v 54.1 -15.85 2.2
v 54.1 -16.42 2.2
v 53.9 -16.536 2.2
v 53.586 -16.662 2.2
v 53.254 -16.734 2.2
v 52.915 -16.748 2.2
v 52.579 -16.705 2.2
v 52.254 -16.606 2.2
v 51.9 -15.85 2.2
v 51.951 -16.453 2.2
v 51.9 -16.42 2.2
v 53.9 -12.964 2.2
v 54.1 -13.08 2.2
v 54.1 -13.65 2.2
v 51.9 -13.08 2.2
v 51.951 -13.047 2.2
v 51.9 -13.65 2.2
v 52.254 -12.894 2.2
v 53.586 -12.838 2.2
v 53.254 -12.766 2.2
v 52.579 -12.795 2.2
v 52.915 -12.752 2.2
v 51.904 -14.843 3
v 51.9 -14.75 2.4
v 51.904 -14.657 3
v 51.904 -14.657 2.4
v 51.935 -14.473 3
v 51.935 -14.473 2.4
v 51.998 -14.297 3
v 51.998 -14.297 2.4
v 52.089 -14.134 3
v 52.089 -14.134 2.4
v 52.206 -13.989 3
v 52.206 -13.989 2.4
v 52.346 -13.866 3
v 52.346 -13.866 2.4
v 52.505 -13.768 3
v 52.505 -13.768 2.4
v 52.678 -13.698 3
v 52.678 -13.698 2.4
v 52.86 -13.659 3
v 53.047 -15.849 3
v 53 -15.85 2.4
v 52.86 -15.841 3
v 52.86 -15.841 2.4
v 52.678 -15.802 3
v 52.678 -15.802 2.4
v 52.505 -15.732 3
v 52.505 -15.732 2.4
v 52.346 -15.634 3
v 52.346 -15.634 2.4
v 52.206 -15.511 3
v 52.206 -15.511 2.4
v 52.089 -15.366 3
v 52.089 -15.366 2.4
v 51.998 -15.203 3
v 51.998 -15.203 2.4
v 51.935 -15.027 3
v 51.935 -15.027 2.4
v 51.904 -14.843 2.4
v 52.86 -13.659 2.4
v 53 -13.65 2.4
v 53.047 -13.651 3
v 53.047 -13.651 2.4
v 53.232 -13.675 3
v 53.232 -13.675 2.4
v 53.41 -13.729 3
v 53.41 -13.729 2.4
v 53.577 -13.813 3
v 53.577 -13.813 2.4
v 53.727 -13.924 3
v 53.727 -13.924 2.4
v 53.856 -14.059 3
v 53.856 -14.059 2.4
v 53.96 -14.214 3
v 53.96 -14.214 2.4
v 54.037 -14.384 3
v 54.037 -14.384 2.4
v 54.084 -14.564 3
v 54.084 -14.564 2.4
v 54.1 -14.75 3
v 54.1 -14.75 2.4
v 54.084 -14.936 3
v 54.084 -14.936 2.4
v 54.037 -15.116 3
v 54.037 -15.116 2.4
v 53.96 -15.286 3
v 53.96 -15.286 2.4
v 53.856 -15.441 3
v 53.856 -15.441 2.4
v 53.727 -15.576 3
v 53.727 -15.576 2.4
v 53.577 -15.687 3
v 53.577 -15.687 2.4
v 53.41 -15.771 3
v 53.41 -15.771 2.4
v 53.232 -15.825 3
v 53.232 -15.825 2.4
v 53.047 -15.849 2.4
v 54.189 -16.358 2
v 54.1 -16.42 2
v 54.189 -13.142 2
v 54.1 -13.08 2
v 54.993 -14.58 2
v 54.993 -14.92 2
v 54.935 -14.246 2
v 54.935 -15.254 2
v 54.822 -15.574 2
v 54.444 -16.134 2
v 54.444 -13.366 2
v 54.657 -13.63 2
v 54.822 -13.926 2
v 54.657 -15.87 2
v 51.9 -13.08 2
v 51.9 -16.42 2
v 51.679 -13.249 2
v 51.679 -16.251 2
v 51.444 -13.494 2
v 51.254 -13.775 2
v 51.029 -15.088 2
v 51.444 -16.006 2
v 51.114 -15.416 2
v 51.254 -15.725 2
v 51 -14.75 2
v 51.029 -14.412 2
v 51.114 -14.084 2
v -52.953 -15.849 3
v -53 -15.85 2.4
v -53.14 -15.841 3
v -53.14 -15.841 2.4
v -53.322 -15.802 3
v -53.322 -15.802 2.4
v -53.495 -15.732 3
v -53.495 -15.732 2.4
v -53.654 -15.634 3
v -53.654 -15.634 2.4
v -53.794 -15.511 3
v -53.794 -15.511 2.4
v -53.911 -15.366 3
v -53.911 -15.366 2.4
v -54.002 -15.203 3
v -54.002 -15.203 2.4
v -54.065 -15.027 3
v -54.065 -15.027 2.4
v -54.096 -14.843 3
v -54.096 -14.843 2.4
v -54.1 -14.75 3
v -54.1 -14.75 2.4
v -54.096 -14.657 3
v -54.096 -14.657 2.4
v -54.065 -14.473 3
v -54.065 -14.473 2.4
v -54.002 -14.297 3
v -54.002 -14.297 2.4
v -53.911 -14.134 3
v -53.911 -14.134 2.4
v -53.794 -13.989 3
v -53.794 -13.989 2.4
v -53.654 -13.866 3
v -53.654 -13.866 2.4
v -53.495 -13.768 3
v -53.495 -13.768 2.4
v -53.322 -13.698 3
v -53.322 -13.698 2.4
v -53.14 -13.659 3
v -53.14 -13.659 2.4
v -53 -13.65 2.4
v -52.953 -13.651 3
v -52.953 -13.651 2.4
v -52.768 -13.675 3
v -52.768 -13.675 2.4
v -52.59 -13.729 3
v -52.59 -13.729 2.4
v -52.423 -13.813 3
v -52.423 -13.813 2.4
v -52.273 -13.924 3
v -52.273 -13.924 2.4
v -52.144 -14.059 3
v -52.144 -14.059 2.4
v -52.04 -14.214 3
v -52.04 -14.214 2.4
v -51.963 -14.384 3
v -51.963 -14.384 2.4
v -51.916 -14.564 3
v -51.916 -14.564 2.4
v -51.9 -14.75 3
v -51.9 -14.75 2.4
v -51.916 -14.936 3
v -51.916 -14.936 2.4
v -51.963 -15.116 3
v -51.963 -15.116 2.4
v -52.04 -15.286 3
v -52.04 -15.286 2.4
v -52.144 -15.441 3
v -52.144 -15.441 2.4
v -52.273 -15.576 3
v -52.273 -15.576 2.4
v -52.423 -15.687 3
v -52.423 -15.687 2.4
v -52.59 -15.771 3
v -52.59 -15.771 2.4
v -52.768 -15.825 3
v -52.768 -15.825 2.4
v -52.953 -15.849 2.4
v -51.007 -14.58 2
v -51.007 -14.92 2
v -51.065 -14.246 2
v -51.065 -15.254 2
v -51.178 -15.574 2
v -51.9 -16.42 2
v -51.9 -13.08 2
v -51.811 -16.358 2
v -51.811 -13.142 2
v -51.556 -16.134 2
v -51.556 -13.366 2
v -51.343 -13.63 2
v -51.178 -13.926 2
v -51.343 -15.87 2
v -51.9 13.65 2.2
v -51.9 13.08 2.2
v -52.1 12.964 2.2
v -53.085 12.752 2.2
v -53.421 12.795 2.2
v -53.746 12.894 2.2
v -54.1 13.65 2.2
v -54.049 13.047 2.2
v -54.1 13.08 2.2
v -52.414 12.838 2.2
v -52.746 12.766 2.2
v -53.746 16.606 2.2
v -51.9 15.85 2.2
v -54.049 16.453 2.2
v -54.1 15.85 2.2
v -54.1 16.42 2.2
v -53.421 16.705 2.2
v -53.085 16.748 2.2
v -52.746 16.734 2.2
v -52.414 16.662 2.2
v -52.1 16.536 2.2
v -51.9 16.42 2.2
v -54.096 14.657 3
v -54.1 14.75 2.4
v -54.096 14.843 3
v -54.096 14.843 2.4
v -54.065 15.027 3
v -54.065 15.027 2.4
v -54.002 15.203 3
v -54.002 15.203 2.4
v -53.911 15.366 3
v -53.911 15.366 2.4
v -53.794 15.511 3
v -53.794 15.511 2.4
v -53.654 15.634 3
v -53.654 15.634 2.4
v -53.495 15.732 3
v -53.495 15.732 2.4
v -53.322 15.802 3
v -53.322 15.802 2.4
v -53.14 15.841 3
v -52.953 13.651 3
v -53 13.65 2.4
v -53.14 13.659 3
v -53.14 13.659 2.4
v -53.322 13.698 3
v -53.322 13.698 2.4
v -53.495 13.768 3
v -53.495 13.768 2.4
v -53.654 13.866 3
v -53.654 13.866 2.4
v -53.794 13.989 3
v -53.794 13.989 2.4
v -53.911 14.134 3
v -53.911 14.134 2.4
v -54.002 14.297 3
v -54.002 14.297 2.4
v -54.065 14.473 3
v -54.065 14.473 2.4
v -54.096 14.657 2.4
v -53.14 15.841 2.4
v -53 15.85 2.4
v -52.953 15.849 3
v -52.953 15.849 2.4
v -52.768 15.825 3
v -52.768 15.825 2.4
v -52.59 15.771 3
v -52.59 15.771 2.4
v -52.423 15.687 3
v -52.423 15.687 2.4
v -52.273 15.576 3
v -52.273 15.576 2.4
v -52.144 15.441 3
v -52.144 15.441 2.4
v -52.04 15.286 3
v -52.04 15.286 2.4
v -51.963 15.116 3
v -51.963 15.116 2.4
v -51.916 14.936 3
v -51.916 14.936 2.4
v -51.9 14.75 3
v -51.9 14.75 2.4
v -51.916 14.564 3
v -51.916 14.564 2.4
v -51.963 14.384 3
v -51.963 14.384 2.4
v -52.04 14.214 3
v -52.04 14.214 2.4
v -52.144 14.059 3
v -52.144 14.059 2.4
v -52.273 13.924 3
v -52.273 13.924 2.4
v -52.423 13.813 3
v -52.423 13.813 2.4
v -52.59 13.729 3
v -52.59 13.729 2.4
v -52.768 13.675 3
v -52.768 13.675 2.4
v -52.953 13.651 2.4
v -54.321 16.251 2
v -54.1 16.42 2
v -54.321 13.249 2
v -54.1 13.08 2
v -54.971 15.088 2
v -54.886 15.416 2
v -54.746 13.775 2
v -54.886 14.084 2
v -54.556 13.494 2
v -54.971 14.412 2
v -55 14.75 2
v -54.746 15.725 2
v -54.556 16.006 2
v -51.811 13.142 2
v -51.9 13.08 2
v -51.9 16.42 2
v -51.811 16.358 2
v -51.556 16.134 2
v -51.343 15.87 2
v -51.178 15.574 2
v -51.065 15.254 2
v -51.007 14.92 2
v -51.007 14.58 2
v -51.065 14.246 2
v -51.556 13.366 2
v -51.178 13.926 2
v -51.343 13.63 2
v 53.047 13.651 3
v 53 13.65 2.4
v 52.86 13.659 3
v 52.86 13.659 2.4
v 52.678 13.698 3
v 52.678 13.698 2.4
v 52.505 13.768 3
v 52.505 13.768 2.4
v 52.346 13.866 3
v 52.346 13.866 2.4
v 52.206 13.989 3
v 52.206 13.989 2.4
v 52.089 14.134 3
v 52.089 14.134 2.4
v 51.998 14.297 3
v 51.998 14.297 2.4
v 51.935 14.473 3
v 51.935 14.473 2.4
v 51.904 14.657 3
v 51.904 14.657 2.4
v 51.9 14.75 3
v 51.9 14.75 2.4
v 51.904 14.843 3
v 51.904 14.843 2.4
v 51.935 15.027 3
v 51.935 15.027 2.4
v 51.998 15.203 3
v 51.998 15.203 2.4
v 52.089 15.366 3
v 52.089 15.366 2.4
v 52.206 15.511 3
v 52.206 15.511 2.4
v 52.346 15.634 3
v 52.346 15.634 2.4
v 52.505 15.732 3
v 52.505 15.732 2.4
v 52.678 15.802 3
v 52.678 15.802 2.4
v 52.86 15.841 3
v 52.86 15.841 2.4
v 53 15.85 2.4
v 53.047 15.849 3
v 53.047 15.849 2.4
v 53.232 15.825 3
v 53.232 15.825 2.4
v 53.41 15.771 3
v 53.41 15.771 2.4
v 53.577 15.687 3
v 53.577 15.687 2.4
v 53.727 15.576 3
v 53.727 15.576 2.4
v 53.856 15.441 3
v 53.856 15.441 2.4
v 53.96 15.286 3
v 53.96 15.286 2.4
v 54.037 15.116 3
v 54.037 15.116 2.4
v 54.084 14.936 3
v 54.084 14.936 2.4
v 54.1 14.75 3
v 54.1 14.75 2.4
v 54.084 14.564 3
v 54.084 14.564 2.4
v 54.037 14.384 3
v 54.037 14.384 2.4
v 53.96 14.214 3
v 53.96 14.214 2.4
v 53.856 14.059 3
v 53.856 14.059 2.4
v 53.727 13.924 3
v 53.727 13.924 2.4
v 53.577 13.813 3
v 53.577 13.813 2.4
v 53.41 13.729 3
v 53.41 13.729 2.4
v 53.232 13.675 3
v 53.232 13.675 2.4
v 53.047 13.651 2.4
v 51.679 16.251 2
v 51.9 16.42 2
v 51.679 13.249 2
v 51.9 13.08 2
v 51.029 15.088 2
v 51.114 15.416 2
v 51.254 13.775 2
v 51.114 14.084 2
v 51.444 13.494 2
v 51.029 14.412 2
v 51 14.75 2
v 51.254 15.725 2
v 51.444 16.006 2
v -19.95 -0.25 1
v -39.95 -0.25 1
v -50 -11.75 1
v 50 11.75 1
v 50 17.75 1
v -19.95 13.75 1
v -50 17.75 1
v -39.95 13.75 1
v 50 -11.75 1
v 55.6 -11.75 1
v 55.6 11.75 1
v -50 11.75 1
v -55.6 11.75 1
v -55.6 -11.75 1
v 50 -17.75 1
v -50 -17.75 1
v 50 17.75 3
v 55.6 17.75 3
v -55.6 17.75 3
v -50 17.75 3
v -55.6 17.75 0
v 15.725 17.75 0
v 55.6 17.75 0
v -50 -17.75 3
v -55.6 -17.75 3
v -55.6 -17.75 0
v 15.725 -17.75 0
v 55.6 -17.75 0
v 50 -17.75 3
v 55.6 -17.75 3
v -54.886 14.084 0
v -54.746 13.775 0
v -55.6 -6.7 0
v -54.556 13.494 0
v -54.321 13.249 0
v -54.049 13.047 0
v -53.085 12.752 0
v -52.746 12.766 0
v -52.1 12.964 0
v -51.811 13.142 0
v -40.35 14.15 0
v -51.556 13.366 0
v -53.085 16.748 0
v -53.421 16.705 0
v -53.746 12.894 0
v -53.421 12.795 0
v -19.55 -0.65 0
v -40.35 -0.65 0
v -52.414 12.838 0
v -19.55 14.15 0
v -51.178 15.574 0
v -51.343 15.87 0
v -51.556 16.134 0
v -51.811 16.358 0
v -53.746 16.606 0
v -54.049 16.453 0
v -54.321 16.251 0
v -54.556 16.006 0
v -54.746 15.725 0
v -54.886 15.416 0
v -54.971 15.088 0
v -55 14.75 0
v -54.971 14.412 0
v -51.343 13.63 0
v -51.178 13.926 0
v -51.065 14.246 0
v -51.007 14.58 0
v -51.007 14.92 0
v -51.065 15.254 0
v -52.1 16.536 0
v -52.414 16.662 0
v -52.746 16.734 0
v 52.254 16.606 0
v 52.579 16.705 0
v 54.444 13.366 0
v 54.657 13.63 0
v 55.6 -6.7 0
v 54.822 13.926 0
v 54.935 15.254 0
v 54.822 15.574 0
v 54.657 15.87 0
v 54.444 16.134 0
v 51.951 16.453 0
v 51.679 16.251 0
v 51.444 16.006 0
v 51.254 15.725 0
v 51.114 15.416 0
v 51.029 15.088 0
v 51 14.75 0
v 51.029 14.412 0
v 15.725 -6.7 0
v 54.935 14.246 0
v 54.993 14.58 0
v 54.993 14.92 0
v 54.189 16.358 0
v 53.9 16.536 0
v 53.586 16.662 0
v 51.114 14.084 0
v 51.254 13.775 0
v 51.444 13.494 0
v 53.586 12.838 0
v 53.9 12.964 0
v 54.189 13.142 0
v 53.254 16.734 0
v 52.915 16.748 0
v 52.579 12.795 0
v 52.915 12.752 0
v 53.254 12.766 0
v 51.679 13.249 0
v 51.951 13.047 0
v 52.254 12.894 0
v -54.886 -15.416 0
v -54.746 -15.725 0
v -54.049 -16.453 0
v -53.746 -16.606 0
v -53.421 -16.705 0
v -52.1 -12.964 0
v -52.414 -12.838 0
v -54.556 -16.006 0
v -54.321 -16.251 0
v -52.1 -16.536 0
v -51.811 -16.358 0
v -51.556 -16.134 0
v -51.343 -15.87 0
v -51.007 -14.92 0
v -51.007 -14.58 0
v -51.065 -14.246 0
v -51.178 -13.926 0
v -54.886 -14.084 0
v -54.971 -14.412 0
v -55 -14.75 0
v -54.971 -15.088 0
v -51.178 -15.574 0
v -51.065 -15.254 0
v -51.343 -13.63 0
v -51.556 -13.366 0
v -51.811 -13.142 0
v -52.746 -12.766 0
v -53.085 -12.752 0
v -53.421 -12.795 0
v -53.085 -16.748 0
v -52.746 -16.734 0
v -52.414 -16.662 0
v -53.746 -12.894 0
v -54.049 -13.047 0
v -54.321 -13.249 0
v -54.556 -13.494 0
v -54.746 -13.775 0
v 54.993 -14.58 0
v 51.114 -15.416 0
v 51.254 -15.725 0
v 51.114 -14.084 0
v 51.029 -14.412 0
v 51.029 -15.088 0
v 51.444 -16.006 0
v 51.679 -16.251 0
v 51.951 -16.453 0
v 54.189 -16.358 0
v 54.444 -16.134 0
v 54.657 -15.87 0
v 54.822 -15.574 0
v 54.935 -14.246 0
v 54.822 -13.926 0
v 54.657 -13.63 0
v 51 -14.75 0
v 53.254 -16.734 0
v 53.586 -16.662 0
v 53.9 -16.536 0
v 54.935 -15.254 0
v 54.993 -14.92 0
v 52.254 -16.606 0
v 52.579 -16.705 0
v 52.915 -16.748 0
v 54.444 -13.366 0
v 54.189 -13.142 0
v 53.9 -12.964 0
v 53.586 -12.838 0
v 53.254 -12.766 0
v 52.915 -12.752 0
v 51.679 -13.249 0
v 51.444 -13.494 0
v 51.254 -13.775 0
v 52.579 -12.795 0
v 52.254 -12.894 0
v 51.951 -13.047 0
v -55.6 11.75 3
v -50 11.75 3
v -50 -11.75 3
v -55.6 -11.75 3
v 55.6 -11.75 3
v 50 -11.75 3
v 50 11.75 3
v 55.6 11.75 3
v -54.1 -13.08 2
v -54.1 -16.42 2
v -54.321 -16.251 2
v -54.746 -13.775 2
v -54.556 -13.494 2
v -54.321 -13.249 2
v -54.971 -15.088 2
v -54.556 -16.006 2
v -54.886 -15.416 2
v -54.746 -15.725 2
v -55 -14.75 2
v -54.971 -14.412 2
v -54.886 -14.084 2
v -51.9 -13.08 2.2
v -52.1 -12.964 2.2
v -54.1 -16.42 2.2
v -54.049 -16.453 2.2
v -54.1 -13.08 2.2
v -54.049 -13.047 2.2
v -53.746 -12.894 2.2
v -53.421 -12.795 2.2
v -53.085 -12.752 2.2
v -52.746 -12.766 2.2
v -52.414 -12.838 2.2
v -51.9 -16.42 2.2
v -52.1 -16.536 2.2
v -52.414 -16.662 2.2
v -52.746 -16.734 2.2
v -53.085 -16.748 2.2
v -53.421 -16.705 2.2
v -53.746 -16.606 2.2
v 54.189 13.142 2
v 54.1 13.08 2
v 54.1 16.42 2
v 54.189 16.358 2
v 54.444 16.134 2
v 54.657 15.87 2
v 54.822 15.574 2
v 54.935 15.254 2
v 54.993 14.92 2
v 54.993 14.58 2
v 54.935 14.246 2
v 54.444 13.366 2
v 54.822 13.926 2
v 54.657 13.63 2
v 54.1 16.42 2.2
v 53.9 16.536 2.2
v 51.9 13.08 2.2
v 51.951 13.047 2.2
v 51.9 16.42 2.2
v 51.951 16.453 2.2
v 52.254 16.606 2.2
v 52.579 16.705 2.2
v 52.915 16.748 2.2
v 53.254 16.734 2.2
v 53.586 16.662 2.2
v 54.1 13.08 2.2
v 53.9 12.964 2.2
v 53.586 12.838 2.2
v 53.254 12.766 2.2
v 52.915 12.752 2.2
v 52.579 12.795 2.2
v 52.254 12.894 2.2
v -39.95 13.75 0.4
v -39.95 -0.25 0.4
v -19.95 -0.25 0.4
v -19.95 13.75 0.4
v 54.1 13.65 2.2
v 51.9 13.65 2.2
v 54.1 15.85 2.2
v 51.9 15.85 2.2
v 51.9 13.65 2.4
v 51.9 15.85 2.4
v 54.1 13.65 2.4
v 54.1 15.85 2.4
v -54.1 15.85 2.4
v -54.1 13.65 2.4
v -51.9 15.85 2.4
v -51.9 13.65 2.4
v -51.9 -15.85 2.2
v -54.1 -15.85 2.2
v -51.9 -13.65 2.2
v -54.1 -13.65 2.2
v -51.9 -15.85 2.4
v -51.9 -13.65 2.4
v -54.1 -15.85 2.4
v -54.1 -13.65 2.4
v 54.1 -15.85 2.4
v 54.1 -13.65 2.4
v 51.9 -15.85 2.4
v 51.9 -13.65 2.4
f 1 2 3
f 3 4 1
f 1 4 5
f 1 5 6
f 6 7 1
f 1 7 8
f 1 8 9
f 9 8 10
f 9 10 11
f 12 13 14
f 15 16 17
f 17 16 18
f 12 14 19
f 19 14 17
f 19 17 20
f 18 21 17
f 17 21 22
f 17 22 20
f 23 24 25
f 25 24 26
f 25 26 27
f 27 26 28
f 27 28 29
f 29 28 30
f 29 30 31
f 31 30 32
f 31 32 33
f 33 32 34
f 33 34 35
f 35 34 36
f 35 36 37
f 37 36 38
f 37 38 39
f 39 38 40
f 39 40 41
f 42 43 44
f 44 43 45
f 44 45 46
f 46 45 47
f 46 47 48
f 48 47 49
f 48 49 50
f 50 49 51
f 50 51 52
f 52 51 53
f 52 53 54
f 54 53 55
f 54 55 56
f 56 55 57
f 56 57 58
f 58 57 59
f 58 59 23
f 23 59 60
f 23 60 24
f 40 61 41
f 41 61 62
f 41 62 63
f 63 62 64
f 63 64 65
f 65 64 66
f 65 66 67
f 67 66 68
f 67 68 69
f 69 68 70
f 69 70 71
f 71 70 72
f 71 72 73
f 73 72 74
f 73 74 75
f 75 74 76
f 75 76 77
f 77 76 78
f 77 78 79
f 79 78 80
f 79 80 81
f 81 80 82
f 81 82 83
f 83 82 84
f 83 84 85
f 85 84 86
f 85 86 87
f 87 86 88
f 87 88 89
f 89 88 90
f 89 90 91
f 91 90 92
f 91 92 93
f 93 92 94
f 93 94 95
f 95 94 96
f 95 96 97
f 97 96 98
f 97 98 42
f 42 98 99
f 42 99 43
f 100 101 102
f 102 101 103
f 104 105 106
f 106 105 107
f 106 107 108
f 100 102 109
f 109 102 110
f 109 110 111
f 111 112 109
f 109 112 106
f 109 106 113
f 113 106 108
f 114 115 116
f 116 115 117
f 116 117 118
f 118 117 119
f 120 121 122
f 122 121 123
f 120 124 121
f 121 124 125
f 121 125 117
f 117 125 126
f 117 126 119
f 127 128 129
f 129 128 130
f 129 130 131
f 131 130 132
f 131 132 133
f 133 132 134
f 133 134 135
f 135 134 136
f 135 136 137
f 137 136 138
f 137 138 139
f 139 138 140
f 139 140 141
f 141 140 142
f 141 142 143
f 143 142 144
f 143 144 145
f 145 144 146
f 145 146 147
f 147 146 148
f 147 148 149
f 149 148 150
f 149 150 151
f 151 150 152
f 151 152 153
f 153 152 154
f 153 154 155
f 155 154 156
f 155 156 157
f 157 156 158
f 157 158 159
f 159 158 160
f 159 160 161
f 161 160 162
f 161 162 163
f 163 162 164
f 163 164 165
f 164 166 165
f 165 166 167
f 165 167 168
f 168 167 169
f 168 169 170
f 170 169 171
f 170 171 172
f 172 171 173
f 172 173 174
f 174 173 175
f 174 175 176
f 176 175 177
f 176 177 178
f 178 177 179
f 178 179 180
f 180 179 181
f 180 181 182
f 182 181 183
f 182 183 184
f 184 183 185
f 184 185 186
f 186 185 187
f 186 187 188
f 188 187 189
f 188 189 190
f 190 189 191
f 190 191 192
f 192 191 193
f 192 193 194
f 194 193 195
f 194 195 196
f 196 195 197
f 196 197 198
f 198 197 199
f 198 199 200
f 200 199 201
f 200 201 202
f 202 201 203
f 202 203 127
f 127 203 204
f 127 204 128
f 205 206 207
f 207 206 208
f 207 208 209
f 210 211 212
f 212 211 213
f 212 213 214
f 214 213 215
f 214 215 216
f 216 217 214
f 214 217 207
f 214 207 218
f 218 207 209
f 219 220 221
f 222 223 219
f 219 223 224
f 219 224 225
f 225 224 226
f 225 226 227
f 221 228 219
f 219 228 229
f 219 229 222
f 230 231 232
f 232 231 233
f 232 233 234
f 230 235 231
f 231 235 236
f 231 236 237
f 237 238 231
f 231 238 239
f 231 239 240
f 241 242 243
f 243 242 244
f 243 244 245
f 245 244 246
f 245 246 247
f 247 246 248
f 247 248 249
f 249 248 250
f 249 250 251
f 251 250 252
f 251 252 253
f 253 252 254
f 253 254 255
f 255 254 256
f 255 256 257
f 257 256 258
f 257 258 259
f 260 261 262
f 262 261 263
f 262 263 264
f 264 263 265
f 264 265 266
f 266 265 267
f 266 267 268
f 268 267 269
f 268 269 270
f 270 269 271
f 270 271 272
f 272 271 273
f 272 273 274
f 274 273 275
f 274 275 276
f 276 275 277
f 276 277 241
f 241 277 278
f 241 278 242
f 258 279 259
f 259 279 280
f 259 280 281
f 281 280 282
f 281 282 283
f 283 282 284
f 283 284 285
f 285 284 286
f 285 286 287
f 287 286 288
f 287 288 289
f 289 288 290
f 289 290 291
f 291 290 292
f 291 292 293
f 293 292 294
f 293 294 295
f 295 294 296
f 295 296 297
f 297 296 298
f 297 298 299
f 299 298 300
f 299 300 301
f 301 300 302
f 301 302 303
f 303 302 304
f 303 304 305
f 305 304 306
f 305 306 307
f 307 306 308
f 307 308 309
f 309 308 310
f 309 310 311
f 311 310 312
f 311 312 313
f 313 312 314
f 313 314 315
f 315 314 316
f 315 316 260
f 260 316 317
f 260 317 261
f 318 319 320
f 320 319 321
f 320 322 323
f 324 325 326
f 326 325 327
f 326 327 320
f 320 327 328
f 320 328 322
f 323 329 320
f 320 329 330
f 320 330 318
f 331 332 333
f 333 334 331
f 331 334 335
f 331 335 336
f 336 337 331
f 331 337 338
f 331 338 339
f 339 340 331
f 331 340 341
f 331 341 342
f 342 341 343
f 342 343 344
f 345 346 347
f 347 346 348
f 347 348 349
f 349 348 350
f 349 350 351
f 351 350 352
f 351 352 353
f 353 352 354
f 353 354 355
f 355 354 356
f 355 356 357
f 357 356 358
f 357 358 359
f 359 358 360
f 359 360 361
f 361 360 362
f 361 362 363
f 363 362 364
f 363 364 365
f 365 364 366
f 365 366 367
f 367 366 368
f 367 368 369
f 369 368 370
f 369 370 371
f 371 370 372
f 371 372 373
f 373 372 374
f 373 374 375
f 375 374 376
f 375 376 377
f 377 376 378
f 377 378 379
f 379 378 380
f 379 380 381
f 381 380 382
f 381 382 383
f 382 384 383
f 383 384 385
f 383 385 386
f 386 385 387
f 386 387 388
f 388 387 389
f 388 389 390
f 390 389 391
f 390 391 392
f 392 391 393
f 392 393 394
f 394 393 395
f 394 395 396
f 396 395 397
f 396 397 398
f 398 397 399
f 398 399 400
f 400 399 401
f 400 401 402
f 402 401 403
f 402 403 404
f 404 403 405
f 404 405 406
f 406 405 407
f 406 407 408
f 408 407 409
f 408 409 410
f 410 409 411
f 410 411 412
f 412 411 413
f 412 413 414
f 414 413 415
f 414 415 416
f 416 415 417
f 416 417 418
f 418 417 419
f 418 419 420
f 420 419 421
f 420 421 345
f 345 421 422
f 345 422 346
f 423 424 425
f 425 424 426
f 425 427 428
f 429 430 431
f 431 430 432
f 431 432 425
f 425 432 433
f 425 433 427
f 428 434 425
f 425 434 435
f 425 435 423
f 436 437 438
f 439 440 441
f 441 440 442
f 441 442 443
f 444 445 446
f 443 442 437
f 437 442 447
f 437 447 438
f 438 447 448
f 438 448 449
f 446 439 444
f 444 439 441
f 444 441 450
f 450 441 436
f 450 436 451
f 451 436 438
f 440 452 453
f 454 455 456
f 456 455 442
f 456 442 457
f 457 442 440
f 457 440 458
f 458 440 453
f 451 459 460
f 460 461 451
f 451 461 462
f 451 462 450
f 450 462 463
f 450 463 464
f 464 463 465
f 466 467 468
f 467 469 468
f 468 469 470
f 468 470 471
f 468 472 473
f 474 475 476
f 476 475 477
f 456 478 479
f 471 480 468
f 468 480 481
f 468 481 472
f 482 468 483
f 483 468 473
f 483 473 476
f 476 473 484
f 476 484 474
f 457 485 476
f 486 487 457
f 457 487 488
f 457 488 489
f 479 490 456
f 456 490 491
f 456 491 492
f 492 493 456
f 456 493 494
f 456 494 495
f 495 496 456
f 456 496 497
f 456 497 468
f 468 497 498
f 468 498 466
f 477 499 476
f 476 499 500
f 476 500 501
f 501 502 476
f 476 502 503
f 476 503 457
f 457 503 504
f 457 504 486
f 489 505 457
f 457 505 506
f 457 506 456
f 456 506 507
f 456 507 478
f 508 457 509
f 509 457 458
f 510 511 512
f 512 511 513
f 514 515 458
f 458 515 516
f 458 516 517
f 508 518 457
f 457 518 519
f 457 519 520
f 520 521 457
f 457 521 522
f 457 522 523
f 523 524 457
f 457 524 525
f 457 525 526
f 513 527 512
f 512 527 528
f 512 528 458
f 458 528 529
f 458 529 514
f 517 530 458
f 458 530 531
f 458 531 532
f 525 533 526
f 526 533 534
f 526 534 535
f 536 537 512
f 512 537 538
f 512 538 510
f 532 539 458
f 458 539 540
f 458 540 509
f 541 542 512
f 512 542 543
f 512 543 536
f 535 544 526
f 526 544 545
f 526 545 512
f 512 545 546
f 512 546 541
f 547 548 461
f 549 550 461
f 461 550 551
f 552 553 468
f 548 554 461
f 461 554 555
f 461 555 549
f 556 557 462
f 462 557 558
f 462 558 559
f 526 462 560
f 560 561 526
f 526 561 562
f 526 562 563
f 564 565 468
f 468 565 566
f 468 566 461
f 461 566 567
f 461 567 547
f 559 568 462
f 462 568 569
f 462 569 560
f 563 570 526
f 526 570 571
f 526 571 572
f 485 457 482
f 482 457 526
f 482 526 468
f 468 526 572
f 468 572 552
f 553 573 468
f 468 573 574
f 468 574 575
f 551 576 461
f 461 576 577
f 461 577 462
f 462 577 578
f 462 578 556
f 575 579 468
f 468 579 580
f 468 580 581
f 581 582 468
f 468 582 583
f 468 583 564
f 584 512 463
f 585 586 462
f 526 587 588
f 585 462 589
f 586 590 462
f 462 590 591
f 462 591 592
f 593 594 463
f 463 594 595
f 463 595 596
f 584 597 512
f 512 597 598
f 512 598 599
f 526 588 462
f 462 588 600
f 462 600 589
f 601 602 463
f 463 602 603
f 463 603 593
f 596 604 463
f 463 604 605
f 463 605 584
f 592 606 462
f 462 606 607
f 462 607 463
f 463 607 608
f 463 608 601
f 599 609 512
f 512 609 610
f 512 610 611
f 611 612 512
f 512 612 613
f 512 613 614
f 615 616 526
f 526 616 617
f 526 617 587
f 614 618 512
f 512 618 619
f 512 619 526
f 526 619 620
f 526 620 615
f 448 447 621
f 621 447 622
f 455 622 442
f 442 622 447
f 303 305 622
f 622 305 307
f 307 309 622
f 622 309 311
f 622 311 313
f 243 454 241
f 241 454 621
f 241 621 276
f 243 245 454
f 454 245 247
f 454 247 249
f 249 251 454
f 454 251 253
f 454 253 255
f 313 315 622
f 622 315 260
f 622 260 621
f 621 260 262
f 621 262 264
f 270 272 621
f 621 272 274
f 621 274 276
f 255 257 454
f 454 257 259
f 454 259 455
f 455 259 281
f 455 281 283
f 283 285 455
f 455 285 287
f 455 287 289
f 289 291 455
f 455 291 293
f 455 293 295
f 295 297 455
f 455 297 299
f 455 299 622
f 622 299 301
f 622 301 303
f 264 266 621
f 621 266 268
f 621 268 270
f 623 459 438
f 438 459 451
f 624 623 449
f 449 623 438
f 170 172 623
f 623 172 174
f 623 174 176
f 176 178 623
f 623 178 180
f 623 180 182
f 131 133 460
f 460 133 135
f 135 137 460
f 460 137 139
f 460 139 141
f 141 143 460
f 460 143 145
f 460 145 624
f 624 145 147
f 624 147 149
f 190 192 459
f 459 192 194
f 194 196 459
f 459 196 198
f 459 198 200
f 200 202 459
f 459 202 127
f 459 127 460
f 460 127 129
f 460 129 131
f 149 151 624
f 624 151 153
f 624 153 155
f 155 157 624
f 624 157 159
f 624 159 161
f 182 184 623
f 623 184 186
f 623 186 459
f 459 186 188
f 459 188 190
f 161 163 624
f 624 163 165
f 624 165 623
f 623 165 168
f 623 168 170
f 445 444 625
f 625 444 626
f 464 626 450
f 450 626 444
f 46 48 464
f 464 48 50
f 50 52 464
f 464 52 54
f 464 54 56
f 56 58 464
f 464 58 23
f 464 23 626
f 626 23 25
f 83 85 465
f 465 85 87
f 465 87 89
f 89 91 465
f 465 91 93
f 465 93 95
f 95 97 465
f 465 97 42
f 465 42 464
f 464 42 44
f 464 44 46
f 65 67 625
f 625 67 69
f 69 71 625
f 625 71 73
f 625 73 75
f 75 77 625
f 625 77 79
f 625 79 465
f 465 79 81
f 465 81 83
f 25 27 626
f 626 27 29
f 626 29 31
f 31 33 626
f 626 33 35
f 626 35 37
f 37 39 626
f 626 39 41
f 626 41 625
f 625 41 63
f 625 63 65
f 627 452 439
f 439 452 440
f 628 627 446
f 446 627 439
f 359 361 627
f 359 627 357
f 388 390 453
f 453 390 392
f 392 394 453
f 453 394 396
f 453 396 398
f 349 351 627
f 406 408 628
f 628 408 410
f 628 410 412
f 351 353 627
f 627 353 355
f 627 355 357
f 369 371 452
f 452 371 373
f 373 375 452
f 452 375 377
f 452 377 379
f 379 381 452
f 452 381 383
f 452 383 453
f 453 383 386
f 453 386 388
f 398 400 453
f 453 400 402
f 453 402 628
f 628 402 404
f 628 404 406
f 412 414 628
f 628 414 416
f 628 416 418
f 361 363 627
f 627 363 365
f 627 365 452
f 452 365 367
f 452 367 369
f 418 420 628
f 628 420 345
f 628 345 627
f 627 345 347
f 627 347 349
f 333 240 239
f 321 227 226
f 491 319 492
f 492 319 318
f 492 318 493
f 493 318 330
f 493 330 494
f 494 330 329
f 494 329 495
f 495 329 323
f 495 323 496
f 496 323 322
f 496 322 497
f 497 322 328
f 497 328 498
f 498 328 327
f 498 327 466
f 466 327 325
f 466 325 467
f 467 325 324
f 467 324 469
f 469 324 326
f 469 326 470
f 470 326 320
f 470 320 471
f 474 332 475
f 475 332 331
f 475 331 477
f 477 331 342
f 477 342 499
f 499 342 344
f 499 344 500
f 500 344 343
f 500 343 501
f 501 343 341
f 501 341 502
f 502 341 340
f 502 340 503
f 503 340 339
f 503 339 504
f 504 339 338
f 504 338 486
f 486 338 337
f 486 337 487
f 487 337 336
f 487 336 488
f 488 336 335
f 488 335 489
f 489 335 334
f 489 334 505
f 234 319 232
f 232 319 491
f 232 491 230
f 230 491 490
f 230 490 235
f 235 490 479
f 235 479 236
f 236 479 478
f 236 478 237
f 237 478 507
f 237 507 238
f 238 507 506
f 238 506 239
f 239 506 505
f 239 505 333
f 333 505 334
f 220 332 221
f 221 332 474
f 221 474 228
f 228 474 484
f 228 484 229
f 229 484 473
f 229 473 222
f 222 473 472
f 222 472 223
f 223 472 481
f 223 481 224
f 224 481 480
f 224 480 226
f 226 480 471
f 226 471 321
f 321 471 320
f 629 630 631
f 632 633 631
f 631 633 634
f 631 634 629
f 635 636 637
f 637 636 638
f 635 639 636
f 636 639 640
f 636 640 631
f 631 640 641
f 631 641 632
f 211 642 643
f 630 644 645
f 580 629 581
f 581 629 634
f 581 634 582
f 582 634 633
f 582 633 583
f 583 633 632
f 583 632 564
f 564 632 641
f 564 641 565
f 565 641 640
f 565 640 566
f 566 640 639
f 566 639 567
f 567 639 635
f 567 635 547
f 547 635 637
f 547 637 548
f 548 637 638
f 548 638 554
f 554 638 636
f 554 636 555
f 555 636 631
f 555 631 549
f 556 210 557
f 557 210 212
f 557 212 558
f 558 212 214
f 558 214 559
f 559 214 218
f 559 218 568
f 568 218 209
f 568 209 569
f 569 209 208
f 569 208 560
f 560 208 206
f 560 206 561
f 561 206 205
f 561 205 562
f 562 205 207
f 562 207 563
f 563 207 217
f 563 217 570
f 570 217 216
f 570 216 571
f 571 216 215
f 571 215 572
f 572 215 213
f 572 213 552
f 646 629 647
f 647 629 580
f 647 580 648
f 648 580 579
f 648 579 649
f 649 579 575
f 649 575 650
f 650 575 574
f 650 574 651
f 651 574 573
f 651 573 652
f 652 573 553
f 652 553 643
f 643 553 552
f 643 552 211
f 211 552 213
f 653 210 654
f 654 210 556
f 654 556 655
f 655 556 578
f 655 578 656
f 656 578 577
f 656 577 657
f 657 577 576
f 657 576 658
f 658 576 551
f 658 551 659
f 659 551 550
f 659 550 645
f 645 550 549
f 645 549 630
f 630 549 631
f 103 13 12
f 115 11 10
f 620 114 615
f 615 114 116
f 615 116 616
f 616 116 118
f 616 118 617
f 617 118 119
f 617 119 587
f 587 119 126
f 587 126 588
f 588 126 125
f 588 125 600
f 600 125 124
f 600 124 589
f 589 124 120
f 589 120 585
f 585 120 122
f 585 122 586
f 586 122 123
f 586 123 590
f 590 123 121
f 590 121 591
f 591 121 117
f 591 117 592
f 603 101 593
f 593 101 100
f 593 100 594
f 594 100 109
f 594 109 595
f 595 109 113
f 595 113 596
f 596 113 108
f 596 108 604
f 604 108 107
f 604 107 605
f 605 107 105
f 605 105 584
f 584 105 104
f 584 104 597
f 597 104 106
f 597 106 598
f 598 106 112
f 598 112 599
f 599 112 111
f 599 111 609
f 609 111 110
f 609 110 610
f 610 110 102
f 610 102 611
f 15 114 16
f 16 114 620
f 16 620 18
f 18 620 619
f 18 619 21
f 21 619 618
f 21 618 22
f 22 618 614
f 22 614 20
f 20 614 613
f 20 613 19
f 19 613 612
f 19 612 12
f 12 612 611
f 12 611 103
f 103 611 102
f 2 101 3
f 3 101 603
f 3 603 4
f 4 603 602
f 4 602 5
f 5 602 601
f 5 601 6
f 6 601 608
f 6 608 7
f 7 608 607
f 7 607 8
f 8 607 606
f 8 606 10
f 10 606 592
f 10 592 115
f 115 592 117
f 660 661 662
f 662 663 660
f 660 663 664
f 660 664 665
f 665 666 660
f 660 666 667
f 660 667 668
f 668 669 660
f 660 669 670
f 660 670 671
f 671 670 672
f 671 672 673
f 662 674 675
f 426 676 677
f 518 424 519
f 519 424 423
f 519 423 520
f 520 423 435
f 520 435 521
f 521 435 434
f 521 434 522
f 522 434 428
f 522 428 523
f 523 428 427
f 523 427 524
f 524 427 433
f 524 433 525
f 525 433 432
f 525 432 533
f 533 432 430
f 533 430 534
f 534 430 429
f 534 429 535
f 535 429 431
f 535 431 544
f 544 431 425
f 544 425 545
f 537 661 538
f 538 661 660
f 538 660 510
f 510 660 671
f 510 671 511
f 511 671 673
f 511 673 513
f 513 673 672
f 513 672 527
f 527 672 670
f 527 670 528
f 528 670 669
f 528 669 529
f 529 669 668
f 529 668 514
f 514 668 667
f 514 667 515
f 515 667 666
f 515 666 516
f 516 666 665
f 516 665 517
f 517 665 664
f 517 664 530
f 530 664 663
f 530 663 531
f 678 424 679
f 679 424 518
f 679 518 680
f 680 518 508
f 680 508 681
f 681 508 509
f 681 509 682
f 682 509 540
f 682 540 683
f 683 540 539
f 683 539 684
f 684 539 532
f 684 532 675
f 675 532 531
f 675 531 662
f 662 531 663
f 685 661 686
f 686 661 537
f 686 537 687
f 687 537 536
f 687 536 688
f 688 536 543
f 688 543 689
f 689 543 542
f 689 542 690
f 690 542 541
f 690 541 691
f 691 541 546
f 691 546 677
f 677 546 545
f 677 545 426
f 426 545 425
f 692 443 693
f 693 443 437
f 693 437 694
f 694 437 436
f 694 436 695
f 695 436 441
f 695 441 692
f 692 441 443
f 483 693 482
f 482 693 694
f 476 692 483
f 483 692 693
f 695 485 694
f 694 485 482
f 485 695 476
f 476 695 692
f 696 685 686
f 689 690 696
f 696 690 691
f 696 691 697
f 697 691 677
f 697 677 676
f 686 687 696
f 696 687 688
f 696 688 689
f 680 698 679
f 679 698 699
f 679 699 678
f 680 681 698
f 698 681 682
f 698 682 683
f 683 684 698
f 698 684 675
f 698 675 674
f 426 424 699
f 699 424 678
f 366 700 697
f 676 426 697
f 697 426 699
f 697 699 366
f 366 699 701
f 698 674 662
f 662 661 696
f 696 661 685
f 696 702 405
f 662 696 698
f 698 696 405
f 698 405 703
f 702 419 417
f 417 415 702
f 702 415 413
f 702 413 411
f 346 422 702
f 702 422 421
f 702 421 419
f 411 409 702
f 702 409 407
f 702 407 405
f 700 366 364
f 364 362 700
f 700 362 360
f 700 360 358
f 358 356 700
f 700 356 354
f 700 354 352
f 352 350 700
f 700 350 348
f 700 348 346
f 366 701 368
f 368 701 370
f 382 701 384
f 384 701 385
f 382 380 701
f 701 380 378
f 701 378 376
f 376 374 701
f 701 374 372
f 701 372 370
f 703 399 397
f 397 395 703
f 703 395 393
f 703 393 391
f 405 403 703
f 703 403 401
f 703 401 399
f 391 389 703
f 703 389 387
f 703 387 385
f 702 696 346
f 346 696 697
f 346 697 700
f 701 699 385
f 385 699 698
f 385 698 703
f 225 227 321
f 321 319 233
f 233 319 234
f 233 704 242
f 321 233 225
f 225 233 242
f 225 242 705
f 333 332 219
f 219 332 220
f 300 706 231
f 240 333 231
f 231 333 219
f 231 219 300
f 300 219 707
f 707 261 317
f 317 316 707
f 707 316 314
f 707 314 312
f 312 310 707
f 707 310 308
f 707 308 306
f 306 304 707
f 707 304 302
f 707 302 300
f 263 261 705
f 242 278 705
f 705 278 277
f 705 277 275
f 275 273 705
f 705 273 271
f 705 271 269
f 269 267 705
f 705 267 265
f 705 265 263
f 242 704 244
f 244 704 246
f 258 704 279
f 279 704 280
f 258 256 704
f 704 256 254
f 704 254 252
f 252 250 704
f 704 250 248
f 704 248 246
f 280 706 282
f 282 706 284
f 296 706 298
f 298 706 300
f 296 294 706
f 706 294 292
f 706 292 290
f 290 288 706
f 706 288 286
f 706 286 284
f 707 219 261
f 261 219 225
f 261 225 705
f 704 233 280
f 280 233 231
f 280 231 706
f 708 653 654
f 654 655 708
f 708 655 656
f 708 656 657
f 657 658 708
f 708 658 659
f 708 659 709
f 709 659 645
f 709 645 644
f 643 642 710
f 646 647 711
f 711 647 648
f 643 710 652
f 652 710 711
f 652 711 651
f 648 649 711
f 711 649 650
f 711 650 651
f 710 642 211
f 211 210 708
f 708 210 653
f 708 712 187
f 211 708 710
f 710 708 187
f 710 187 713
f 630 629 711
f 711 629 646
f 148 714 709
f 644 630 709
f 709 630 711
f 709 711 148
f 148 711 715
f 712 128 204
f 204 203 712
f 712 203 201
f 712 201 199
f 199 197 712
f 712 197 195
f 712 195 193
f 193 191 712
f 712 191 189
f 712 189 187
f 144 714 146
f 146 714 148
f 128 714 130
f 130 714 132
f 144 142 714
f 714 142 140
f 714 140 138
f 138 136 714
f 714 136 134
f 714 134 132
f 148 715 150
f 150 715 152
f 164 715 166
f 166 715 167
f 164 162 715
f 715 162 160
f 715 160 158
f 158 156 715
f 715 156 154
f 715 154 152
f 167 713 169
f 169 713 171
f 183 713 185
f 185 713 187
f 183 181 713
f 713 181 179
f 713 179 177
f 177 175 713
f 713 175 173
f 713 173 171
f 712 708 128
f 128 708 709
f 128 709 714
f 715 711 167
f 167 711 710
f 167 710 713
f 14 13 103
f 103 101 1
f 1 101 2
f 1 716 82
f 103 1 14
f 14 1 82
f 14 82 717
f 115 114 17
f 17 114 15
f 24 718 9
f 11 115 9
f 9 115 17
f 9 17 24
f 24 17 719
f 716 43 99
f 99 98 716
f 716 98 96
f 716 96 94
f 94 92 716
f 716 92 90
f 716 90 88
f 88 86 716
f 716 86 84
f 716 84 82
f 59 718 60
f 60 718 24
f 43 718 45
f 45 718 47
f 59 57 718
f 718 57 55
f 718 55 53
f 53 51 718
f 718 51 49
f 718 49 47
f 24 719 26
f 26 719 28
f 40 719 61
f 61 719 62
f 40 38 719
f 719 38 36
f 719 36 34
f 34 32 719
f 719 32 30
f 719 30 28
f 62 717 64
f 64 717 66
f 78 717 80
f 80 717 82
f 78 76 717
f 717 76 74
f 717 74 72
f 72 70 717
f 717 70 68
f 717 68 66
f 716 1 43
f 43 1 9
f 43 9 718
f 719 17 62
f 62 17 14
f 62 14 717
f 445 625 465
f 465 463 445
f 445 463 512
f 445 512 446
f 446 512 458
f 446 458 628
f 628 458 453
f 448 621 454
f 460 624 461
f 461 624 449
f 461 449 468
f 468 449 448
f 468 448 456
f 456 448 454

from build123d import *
from build123d.topology import SkipClean

# Parameters (mm, degrees)
SKETCH1_W               = 112
SKETCH1_H               = 35.5
BOSS_EXTRUDE1_DEPTH     = 1
SKETCH2_W               = 6
SKETCH2_H               = 6
BOSS_EXTRUDE2_DEPTH     = 2
SKETCH3_R               = 1.1
CUT_EXTRUDE1_DEPTH      = 59.822295943
SKETCH4_R               = 2
CUT_EXTRUDE2_DEPTH      = 2
SKETCH5_W               = 20
SKETCH5_H               = 14
CUT_EXTRUDE3_DEPTH      = 59.822295943
CHAMFER1_SIZE           = 0.4
CUT_EXTRUDE4_DEPTH      = 0.2
SKETCH7_W               = 2.2
SKETCH7_H               = 2.2
CUT_EXTRUDE5_DEPTH      = 0.2
MIRROR2_COPY_1_DEPTH    = 0.2
MIRROR2_COPY_2_SKETCH_W = 2.2
MIRROR2_COPY_2_SKETCH_H = 2.2
MIRROR2_COPY_2_DEPTH    = 0.2
CUT_EXTRUDE6_DEPTH      = 59.779779687
CUT_EXTRUDE6_DEPTH_BACK = 59.779779687
SKETCH8_W               = 0.4
SKETCH8_H               = 35.5


with BuildPart() as part:
    # Sketch1 → Boss-Extrude1 (new body)
    with BuildSketch(Plane.XY):
        Rectangle(SKETCH1_W, SKETCH1_H)
    extrude(amount=BOSS_EXTRUDE1_DEPTH)

    # Sketch2 → Boss-Extrude2 (add)
    with BuildSketch(Plane.XY.offset(1)):
        with Locations((-53, 14.75)):
            Rectangle(SKETCH2_W, SKETCH2_H)
        with Locations((-53, -14.75)):
            Rectangle(SKETCH2_W, SKETCH2_H)
        with Locations((53, -14.75)):
            Rectangle(SKETCH2_W, SKETCH2_H)
        with Locations((53, 14.75)):
            Rectangle(SKETCH2_W, SKETCH2_H)
    extrude(amount=BOSS_EXTRUDE2_DEPTH)

    # Sketch3 → Cut-Extrude1 (cut, through all)
    with BuildSketch(Plane.XY.offset(3)):
        with Locations((-53, 14.75)):
            Circle(SKETCH3_R)
        with Locations(Location((-53, -14.75, 0), (0, 0, 180))):
            Circle(SKETCH3_R)
        with Locations((53, -14.75)):
            Circle(SKETCH3_R)
        with Locations(Location((53, 14.75, 0), (0, 0, 180))):
            Circle(SKETCH3_R)
    extrude(amount=-CUT_EXTRUDE1_DEPTH, mode=Mode.SUBTRACT)

    # Sketch4 → Cut-Extrude2 (cut)
    with BuildSketch(Plane(origin=(0, 0, 0), x_dir=(-1, 0, 0), z_dir=(0, 0, -1))):
        with Locations((-53, 14.75)):
            Circle(SKETCH4_R)
        with Locations((-53, -14.75)):
            Circle(SKETCH4_R)
        with Locations((53, 14.75)):
            Circle(SKETCH4_R)
        with Locations((53, -14.75)):
            Circle(SKETCH4_R)
    extrude(amount=-CUT_EXTRUDE2_DEPTH, mode=Mode.SUBTRACT)

    # Sketch5 → Cut-Extrude3 (cut, through all)
    with BuildSketch(Plane(origin=(0, 0, 0), x_dir=(-1, 0, 0), z_dir=(0, 0, -1))):
        with Locations((29.95, 6.75)):
            Rectangle(SKETCH5_W, SKETCH5_H)
    extrude(amount=-CUT_EXTRUDE3_DEPTH, mode=Mode.SUBTRACT)

    # Chamfer1
    chamfer1_edges = [part.edges().sort_by_distance(p)[0] for p in [
        (-39.95, 6.75, 0),
        (-29.95, 13.75, 0),
        (-19.95, 6.75, 0),
        (-29.95, -0.25, 0),
    ]]
    chamfer(chamfer1_edges, length=CHAMFER1_SIZE)

    # Sketch6 → Cut-Extrude4 (cut)
    with SkipClean():  # the faces are left unmerged after this step: merging them gives an invalid solid
        with BuildSketch(Plane(origin=(0, 0, 2), x_dir=(-1, 0, 0), z_dir=(0, 0, -1))):
            with BuildLine():
                Line((-54.1, 13.079670691), (-54.1, 16.420329309))
                ThreePointArc((-54.1, 16.420329309), (-53, 16.75), (-51.9, 16.420329309))
                Line((-51.9, 16.420329309), (-51.9, 13.079670691))
                ThreePointArc((-51.9, 13.079670691), (-53, 12.75), (-54.1, 13.079670691))
            make_face()
        cut_extrude4 = extrude(amount=-CUT_EXTRUDE4_DEPTH, mode=Mode.SUBTRACT)

    # Sketch7 → Cut-Extrude5 (cut)
    with SkipClean():  # the faces are left unmerged after this step: merging them gives an invalid solid
        with BuildSketch(Plane(origin=(0, 0, 2.2), x_dir=(-1, 0, 0), z_dir=(0, 0, -1))):
            with Locations((-53, 14.75)):
                Rectangle(SKETCH7_W, SKETCH7_H)
        cut_extrude5 = extrude(amount=-CUT_EXTRUDE5_DEPTH, mode=Mode.SUBTRACT)

    # Mirror1: Cut-Extrude4, Cut-Extrude5 across plane
    with SkipClean():  # the faces are left unmerged after this step: merging them gives an invalid solid
        add(cut_extrude4.mirror(Plane(origin=(0, 0, 0), x_dir=(0, 0, 1), z_dir=(1, 0, 0))), mode=Mode.SUBTRACT)
        add(cut_extrude5.mirror(Plane(origin=(0, 0, 0), x_dir=(0, 0, 1), z_dir=(1, 0, 0))), mode=Mode.SUBTRACT)

    # Mirror2: Cut-Extrude4, Cut-Extrude5 across plane
    with SkipClean():  # the faces are left unmerged after this step: merging them gives an invalid solid
        add(cut_extrude4.mirror(Plane.ZX), mode=Mode.SUBTRACT)
        add(cut_extrude5.mirror(Plane.ZX), mode=Mode.SUBTRACT)

    # Mirror2 copy 1 sketch → Mirror2 copy 1 (cut)
    with SkipClean():  # the faces are left unmerged after this step: merging them gives an invalid solid
        with BuildSketch(Plane(origin=(0, 0, 2), x_dir=(1, 0, 0), z_dir=(0, 0, -1))):
            with BuildLine():
                Line((-54.1, 13.079670691), (-54.1, 16.420329309))
                ThreePointArc((-54.1, 16.420329309), (-53, 16.75), (-51.9, 16.420329309))
                Line((-51.9, 16.420329309), (-51.9, 13.079670691))
                ThreePointArc((-51.9, 13.079670691), (-53, 12.75), (-54.1, 13.079670691))
            make_face()
        extrude(amount=-MIRROR2_COPY_1_DEPTH, mode=Mode.SUBTRACT)

    # Mirror2 copy 2 sketch → Mirror2 copy 2 (cut)
    with SkipClean():  # the faces are left unmerged after this step: merging them gives an invalid solid
        with BuildSketch(Plane(origin=(0, 0, 2.2), x_dir=(1, 0, 0), z_dir=(0, 0, -1))):
            with Locations((-53, 14.75)):
                Rectangle(MIRROR2_COPY_2_SKETCH_W, MIRROR2_COPY_2_SKETCH_H)
        extrude(amount=-MIRROR2_COPY_2_DEPTH, mode=Mode.SUBTRACT)

    # Sketch8 → Cut-Extrude6 (cut, two sides: drawn at the far end of the back side and taken through both)
    with SkipClean():  # the faces are left unmerged after this step: merging them gives an invalid solid
        with BuildSketch(Plane.XY.offset(1).offset(-CUT_EXTRUDE6_DEPTH_BACK)):
            with Locations((-55.8, 0)):
                Rectangle(SKETCH8_W, SKETCH8_H)
            with Locations((55.8, 0)):
                Rectangle(SKETCH8_W, SKETCH8_H)
        extrude(amount=CUT_EXTRUDE6_DEPTH + CUT_EXTRUDE6_DEPTH_BACK, mode=Mode.SUBTRACT)


solid = part.part
